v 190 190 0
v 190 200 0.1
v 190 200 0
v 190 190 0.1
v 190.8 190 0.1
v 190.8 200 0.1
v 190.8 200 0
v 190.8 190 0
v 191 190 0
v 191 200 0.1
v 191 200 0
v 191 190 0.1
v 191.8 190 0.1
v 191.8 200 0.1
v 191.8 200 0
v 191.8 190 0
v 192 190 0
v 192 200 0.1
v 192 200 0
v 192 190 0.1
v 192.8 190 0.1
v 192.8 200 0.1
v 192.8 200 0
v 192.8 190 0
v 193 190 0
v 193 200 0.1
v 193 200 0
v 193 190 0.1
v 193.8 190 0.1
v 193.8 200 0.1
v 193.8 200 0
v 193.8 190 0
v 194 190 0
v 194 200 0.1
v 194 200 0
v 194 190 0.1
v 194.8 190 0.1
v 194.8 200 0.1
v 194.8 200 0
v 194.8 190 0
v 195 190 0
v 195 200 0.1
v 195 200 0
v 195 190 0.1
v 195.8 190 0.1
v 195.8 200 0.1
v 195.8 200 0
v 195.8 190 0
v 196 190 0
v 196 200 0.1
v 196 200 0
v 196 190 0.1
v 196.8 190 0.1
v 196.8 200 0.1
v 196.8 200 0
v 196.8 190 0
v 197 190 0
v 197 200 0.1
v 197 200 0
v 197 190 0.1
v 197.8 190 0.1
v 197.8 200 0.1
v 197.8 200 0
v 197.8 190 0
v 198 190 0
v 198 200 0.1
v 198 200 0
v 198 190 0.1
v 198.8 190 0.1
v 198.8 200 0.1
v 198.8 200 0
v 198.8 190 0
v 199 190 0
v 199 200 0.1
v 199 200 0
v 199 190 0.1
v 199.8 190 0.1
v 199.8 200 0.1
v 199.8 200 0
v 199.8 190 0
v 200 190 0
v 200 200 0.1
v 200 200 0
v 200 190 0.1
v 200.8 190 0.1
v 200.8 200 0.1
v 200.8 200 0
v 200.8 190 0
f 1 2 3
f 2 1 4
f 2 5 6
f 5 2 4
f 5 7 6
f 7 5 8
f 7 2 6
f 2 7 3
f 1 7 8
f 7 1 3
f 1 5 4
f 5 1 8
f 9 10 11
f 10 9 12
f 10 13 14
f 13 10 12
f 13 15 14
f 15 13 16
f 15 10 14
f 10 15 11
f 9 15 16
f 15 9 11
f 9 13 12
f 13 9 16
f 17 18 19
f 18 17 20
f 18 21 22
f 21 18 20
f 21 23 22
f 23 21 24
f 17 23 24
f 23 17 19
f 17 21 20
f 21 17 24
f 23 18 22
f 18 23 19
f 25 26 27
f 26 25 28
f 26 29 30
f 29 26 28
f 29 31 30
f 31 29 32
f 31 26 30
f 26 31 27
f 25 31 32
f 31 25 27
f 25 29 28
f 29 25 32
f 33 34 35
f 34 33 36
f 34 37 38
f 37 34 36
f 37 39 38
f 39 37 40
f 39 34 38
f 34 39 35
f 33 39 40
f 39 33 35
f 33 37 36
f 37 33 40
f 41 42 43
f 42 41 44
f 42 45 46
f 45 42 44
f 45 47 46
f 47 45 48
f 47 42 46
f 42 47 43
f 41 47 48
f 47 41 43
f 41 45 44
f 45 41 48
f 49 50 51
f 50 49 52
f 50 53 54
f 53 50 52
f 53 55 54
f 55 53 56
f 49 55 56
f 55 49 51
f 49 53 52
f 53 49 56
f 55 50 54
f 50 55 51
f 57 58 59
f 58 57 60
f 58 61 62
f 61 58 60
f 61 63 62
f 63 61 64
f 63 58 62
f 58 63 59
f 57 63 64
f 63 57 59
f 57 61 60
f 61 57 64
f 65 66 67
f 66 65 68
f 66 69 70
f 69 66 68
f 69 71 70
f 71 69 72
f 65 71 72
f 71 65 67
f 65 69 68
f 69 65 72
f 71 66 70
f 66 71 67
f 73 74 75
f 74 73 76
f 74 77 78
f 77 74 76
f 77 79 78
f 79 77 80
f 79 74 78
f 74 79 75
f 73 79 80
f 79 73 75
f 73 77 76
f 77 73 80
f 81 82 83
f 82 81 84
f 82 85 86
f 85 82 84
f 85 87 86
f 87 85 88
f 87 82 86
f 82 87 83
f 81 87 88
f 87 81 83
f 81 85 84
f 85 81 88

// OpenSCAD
translate([10+180,10+180,0])
        for (i = [0 : 10]){
            translate([i,0,0])
                cube(size = [0.8,10,0.1]);
    }
